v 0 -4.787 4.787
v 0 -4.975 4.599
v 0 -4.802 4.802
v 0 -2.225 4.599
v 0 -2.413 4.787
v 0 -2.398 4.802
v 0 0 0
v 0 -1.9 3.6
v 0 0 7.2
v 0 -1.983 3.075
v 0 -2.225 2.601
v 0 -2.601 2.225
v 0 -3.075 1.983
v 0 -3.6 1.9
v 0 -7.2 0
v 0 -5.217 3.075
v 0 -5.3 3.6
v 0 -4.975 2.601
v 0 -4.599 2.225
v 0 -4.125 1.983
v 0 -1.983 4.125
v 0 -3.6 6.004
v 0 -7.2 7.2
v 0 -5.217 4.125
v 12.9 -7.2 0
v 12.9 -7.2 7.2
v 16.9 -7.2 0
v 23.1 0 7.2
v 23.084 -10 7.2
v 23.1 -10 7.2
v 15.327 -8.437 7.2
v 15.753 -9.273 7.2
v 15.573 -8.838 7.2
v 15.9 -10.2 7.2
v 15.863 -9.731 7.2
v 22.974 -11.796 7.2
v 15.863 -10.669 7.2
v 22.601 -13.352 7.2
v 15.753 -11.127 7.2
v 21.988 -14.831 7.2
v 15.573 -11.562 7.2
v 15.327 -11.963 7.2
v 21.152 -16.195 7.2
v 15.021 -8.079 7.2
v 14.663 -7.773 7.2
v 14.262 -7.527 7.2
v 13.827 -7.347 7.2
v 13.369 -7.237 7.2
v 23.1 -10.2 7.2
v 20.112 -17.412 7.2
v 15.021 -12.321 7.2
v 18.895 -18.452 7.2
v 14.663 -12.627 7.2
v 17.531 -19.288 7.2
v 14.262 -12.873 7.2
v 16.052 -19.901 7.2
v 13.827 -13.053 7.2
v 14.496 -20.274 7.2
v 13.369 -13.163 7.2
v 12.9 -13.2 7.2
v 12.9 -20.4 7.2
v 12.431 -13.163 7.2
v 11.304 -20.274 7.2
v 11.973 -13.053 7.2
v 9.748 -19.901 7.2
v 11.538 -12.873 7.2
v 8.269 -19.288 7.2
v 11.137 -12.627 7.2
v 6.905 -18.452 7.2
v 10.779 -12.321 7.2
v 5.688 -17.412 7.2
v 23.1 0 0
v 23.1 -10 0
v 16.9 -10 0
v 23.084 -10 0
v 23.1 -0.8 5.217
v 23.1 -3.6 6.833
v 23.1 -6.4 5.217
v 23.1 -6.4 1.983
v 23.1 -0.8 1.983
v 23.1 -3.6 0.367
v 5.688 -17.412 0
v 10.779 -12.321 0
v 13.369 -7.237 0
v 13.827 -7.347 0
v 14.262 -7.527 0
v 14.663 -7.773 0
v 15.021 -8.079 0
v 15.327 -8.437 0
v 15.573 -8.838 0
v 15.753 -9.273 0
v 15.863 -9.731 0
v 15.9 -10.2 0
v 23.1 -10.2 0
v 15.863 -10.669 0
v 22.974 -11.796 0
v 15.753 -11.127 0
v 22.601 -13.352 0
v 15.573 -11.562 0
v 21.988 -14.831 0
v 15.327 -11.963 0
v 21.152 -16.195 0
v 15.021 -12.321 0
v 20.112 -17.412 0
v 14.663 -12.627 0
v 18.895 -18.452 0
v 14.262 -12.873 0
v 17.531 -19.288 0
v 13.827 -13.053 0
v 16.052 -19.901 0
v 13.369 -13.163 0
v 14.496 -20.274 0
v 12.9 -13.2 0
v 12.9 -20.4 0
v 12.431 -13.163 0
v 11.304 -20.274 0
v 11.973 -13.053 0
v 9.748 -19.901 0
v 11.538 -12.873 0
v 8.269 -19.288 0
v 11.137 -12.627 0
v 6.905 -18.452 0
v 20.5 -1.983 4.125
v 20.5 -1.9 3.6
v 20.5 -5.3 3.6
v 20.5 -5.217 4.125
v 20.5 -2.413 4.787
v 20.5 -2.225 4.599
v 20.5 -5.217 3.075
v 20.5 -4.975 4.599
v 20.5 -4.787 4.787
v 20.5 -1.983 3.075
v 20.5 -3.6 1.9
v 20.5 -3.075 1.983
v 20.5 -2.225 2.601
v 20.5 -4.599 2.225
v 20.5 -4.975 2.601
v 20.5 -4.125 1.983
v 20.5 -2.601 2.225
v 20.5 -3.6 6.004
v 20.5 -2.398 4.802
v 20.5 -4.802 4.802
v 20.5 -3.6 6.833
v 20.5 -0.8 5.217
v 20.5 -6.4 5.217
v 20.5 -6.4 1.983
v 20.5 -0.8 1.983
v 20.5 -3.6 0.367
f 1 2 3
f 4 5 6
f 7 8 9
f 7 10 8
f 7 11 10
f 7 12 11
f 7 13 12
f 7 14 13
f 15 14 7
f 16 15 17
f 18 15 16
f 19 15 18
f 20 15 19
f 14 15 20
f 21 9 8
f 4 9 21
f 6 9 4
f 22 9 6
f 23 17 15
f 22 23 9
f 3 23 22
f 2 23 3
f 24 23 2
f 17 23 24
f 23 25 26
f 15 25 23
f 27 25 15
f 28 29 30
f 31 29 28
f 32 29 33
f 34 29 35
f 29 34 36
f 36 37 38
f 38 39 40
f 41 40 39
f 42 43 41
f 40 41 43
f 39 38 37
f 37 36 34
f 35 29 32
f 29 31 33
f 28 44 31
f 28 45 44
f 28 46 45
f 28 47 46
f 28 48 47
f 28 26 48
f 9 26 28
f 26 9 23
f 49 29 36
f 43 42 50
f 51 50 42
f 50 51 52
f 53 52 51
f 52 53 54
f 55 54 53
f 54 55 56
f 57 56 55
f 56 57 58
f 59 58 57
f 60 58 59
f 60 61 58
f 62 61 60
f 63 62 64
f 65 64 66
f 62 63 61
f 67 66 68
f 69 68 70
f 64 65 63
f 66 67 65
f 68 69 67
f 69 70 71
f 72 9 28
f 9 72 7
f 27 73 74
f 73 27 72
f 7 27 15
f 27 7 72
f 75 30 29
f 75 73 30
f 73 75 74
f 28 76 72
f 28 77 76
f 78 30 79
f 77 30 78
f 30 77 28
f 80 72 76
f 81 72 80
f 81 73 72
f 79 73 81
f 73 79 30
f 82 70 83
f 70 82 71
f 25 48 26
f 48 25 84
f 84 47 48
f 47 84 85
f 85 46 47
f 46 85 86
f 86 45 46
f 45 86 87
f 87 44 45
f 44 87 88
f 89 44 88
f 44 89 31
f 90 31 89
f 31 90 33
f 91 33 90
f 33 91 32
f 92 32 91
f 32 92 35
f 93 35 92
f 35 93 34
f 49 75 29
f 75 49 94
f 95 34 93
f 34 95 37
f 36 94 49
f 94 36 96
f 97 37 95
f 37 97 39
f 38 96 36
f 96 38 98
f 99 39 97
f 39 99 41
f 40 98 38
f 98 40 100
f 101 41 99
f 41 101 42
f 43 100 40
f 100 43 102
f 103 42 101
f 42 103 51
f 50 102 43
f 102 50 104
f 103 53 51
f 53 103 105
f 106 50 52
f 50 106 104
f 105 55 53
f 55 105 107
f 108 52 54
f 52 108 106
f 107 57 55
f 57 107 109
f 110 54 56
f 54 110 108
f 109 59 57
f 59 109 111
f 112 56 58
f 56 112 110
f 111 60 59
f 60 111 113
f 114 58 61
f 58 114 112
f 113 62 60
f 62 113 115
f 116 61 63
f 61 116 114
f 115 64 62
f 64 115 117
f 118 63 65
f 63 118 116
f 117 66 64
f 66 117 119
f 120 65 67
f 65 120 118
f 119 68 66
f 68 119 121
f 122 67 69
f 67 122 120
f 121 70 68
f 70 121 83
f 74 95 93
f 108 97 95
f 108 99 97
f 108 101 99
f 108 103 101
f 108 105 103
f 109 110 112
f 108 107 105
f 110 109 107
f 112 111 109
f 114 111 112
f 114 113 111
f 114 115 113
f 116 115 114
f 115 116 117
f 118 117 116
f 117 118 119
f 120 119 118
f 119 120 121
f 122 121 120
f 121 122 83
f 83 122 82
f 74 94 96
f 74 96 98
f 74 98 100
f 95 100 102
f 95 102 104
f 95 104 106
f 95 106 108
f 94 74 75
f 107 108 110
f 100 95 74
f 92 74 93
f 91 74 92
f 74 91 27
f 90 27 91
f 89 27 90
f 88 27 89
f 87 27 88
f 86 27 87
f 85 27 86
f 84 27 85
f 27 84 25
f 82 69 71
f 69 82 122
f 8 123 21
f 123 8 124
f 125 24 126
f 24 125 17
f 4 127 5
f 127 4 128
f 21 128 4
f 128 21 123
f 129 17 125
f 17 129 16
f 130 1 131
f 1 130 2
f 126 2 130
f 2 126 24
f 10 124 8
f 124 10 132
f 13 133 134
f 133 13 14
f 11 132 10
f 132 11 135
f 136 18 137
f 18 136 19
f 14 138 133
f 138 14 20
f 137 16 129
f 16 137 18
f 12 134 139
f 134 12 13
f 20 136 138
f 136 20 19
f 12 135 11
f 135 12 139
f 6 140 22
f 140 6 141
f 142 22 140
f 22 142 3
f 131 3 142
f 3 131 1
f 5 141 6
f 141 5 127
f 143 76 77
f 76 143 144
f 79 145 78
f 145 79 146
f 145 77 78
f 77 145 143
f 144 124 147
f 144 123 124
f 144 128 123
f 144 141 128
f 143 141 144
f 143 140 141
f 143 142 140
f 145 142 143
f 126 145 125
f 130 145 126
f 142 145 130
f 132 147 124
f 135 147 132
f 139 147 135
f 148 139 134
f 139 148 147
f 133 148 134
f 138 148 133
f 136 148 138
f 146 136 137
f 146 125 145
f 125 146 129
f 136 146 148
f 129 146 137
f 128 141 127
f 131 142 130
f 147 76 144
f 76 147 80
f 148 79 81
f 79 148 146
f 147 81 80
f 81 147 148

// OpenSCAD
// file: parameters.scad
// Parameters shared between modules
Base_th = 4;
Beam_width = 15;
Wiggle = 0.25;
Fat_beam_width = Beam_width + Wiggle;
Beam_length = 400;
Wall_th = 2.5;
Min_beam_width = 12.5;
Max_beam_width = 17.5;
Zip_th = 2;
Zip_h = Zip_th + Max_beam_width - Min_beam_width;
Zip_w = 5.0;
Nema17_cube_width          = 42.43;
Nema17_screw_hole_width    = 43.74; // Opposite corner screws
Nema17_ring_diameter       = 22;
Nema17_cube_height         = 39.36;
Nema17_shaft_height        = 63.65;
Nema17_ring_height         = 2;
Nema17_shaft_radius        = 5/2;
b608_outer_dia = 22.2;
b608_width = 7.05;
Gap_between_sandwich_and_plate = 1.5 + Base_th; // 1.5 mm for wiggle
Motor_bracket_flerp_r = 6;
Motor_bracket_flerp = 14;
Motor_bracket_cw = Nema17_cube_width + 6;
Motor_bracket_att_ang = 50;
Mounting_screw_d = 4.5;
Mounting_screw_head_d = 14;
Spool_outer_wall_th = 4;

// Corner clamp parameters
Cc_l1 = (Fat_beam_width+2*Wall_th)*2*sqrt(3);
Cc_rad_b = 4;
Cc_action_point_from_mid = Cc_l1/sqrt(3)-2*Cc_rad_b-1.3;  // 1.3 chosen arbitrarily
Cc_plastic_length = sqrt(Cc_action_point_from_mid*Cc_action_point_from_mid
                       - (Cc_action_point_from_mid/2)*(Cc_action_point_from_mid/2));

// The distance between the two action points on the mover
Sidelength = Beam_length + 2*Cc_plastic_length;

/////// Layout parameters ////////////
Ext_sidelength = Sidelength+77;
Additional_added_plate_side_length = 10;
Yshift_top_plate = -25;

/////// Gear parameters ////////////
Circular_pitch = 262;
Motor_teeth = 10;
Gear_height = 21.4-3;
Motor_pitch                      = (Motor_teeth*Circular_pitch/360);
Motor_pitch_diametrial           = Motor_teeth/(2*Motor_pitch);
Motor_outer_radius               = Motor_pitch + 1/Motor_pitch_diametrial;
Spool_teeth = 100;
Spool_r = 65;
Spool_height = 8;
Spool_pitch                      = (Spool_teeth*Circular_pitch/360);
Spool_pitch_diametrial           = Spool_teeth/(2*Spool_pitch);
Spool_outer_radius               = Spool_pitch + 1/Spool_pitch_diametrial;
Sep_disc_radius = 161.83/2; // Made to match 255 teeth gt2 pulley
Motor_bracket_depth = Gear_height+1+7+Nema17_ring_height+1+Gap_between_sandwich_and_plate;
Spool_core_flerp0 = 16+3;

/////// Lineroller parameters ////////////
b623_width  = 4;
b623_bore_r = 3/2;
b623_vgroove_big_r = 12/2;
b623_vgroove_small_r = 10/2;
b623_outer_dia = 10;
Lineroller_wall_th = 2.3;


// The height that lineroller_ABC_winch will have if we include the bearing
Tower_h = Gap_between_sandwich_and_plate+Gear_height
         + Spool_height/2
         + b623_vgroove_small_r
         + b623_vgroove_big_r;
Bearing_wall = 1;
Depth_of_lineroller_tower = b623_width + 2*Wall_th; // 9
Depth_of_lineroller_base = Depth_of_lineroller_tower + 9; // 18
Ptfe_r = 2.1;
Lineroller_base_r = 8;
Screw_h = 2;
Screw_head_h = 2;
Spool_center_bearing_wall_th = 5;
Corner_clamp_bearings_center_to_center = 15;
Anchor_bearings_center_to_center = Corner_clamp_bearings_center_to_center + b623_outer_dia;

//// Lineroller anchor parameters /////

Bearing_0_x = 2*b623_vgroove_big_r+Bearing_wall+5.3;
Bearing_1_x = b623_vgroove_small_r-0.9;
Move_tower = -12.2;
Lower_bearing_z = 13;
Higher_bearing_z = Lower_bearing_z + Corner_clamp_bearings_center_to_center;


//// Donkey and encoder parameters /////

Donkey_shaft_d = 6;
Donkey_h = 65.12;
Donkey_body_d = 50;
Donkey_feet_th = 3.5;

Encoder_LDP3806_shaft_d = 6;
Encoder_LDP3806_d = 38;


//// Cable Clamp parameters /////
Bit_width = 12;
Cable_r=2.5;

GT2_belt_width = 6;
GT2_gear_height = GT2_belt_width + 2;
GT2_motor_gear_height = 16;
GT2_motor_gear_outer_dia = 16;
GT2_spool_gear_teeth = 255;
GT2_motor_gear_teeth = 20;
Torx_depth = GT2_gear_height/2;

Belt_roller_h = 40;
Belt_roller_bearing_center_z = Belt_roller_h - Depth_of_lineroller_base/2;
// main file
use <util.scad>

module sector(r1=3, r2=2, sq=[10,10], angle=90){
    rotate_extrude(angle=angle, $fn=4*10)
    translate([r1,0])
    rounded_square(sq, r2, $fn=20);
}

rotate([90,0,0])
brace_tightener(7.2);
module brace_tightener(b){
  difference(){
    union(){
      cube([22.9, b, b]);
      translate([16.9, 0, 0])
        cube([b-1, b, 10]);
      translate([12.9,b,0])
        rotate([90,90,0])
        translate([-b-3,0,0])
        sector(3, 0, [b, b], 180+45, $fn = 4*12);
    }
    translate([-1,b/2,b/2])
      rotate([0,90,0])
      teardrop(r=3.4/2, h=30, $fn=20);
    translate([20.5,b/2,b/2])
      rotate([0,90,0])
        rotate([0,0,30])
          nut(h=4);
    // to view section cut...
    //translate([-50,5,-50])
    //  cube(100);
  }
}
